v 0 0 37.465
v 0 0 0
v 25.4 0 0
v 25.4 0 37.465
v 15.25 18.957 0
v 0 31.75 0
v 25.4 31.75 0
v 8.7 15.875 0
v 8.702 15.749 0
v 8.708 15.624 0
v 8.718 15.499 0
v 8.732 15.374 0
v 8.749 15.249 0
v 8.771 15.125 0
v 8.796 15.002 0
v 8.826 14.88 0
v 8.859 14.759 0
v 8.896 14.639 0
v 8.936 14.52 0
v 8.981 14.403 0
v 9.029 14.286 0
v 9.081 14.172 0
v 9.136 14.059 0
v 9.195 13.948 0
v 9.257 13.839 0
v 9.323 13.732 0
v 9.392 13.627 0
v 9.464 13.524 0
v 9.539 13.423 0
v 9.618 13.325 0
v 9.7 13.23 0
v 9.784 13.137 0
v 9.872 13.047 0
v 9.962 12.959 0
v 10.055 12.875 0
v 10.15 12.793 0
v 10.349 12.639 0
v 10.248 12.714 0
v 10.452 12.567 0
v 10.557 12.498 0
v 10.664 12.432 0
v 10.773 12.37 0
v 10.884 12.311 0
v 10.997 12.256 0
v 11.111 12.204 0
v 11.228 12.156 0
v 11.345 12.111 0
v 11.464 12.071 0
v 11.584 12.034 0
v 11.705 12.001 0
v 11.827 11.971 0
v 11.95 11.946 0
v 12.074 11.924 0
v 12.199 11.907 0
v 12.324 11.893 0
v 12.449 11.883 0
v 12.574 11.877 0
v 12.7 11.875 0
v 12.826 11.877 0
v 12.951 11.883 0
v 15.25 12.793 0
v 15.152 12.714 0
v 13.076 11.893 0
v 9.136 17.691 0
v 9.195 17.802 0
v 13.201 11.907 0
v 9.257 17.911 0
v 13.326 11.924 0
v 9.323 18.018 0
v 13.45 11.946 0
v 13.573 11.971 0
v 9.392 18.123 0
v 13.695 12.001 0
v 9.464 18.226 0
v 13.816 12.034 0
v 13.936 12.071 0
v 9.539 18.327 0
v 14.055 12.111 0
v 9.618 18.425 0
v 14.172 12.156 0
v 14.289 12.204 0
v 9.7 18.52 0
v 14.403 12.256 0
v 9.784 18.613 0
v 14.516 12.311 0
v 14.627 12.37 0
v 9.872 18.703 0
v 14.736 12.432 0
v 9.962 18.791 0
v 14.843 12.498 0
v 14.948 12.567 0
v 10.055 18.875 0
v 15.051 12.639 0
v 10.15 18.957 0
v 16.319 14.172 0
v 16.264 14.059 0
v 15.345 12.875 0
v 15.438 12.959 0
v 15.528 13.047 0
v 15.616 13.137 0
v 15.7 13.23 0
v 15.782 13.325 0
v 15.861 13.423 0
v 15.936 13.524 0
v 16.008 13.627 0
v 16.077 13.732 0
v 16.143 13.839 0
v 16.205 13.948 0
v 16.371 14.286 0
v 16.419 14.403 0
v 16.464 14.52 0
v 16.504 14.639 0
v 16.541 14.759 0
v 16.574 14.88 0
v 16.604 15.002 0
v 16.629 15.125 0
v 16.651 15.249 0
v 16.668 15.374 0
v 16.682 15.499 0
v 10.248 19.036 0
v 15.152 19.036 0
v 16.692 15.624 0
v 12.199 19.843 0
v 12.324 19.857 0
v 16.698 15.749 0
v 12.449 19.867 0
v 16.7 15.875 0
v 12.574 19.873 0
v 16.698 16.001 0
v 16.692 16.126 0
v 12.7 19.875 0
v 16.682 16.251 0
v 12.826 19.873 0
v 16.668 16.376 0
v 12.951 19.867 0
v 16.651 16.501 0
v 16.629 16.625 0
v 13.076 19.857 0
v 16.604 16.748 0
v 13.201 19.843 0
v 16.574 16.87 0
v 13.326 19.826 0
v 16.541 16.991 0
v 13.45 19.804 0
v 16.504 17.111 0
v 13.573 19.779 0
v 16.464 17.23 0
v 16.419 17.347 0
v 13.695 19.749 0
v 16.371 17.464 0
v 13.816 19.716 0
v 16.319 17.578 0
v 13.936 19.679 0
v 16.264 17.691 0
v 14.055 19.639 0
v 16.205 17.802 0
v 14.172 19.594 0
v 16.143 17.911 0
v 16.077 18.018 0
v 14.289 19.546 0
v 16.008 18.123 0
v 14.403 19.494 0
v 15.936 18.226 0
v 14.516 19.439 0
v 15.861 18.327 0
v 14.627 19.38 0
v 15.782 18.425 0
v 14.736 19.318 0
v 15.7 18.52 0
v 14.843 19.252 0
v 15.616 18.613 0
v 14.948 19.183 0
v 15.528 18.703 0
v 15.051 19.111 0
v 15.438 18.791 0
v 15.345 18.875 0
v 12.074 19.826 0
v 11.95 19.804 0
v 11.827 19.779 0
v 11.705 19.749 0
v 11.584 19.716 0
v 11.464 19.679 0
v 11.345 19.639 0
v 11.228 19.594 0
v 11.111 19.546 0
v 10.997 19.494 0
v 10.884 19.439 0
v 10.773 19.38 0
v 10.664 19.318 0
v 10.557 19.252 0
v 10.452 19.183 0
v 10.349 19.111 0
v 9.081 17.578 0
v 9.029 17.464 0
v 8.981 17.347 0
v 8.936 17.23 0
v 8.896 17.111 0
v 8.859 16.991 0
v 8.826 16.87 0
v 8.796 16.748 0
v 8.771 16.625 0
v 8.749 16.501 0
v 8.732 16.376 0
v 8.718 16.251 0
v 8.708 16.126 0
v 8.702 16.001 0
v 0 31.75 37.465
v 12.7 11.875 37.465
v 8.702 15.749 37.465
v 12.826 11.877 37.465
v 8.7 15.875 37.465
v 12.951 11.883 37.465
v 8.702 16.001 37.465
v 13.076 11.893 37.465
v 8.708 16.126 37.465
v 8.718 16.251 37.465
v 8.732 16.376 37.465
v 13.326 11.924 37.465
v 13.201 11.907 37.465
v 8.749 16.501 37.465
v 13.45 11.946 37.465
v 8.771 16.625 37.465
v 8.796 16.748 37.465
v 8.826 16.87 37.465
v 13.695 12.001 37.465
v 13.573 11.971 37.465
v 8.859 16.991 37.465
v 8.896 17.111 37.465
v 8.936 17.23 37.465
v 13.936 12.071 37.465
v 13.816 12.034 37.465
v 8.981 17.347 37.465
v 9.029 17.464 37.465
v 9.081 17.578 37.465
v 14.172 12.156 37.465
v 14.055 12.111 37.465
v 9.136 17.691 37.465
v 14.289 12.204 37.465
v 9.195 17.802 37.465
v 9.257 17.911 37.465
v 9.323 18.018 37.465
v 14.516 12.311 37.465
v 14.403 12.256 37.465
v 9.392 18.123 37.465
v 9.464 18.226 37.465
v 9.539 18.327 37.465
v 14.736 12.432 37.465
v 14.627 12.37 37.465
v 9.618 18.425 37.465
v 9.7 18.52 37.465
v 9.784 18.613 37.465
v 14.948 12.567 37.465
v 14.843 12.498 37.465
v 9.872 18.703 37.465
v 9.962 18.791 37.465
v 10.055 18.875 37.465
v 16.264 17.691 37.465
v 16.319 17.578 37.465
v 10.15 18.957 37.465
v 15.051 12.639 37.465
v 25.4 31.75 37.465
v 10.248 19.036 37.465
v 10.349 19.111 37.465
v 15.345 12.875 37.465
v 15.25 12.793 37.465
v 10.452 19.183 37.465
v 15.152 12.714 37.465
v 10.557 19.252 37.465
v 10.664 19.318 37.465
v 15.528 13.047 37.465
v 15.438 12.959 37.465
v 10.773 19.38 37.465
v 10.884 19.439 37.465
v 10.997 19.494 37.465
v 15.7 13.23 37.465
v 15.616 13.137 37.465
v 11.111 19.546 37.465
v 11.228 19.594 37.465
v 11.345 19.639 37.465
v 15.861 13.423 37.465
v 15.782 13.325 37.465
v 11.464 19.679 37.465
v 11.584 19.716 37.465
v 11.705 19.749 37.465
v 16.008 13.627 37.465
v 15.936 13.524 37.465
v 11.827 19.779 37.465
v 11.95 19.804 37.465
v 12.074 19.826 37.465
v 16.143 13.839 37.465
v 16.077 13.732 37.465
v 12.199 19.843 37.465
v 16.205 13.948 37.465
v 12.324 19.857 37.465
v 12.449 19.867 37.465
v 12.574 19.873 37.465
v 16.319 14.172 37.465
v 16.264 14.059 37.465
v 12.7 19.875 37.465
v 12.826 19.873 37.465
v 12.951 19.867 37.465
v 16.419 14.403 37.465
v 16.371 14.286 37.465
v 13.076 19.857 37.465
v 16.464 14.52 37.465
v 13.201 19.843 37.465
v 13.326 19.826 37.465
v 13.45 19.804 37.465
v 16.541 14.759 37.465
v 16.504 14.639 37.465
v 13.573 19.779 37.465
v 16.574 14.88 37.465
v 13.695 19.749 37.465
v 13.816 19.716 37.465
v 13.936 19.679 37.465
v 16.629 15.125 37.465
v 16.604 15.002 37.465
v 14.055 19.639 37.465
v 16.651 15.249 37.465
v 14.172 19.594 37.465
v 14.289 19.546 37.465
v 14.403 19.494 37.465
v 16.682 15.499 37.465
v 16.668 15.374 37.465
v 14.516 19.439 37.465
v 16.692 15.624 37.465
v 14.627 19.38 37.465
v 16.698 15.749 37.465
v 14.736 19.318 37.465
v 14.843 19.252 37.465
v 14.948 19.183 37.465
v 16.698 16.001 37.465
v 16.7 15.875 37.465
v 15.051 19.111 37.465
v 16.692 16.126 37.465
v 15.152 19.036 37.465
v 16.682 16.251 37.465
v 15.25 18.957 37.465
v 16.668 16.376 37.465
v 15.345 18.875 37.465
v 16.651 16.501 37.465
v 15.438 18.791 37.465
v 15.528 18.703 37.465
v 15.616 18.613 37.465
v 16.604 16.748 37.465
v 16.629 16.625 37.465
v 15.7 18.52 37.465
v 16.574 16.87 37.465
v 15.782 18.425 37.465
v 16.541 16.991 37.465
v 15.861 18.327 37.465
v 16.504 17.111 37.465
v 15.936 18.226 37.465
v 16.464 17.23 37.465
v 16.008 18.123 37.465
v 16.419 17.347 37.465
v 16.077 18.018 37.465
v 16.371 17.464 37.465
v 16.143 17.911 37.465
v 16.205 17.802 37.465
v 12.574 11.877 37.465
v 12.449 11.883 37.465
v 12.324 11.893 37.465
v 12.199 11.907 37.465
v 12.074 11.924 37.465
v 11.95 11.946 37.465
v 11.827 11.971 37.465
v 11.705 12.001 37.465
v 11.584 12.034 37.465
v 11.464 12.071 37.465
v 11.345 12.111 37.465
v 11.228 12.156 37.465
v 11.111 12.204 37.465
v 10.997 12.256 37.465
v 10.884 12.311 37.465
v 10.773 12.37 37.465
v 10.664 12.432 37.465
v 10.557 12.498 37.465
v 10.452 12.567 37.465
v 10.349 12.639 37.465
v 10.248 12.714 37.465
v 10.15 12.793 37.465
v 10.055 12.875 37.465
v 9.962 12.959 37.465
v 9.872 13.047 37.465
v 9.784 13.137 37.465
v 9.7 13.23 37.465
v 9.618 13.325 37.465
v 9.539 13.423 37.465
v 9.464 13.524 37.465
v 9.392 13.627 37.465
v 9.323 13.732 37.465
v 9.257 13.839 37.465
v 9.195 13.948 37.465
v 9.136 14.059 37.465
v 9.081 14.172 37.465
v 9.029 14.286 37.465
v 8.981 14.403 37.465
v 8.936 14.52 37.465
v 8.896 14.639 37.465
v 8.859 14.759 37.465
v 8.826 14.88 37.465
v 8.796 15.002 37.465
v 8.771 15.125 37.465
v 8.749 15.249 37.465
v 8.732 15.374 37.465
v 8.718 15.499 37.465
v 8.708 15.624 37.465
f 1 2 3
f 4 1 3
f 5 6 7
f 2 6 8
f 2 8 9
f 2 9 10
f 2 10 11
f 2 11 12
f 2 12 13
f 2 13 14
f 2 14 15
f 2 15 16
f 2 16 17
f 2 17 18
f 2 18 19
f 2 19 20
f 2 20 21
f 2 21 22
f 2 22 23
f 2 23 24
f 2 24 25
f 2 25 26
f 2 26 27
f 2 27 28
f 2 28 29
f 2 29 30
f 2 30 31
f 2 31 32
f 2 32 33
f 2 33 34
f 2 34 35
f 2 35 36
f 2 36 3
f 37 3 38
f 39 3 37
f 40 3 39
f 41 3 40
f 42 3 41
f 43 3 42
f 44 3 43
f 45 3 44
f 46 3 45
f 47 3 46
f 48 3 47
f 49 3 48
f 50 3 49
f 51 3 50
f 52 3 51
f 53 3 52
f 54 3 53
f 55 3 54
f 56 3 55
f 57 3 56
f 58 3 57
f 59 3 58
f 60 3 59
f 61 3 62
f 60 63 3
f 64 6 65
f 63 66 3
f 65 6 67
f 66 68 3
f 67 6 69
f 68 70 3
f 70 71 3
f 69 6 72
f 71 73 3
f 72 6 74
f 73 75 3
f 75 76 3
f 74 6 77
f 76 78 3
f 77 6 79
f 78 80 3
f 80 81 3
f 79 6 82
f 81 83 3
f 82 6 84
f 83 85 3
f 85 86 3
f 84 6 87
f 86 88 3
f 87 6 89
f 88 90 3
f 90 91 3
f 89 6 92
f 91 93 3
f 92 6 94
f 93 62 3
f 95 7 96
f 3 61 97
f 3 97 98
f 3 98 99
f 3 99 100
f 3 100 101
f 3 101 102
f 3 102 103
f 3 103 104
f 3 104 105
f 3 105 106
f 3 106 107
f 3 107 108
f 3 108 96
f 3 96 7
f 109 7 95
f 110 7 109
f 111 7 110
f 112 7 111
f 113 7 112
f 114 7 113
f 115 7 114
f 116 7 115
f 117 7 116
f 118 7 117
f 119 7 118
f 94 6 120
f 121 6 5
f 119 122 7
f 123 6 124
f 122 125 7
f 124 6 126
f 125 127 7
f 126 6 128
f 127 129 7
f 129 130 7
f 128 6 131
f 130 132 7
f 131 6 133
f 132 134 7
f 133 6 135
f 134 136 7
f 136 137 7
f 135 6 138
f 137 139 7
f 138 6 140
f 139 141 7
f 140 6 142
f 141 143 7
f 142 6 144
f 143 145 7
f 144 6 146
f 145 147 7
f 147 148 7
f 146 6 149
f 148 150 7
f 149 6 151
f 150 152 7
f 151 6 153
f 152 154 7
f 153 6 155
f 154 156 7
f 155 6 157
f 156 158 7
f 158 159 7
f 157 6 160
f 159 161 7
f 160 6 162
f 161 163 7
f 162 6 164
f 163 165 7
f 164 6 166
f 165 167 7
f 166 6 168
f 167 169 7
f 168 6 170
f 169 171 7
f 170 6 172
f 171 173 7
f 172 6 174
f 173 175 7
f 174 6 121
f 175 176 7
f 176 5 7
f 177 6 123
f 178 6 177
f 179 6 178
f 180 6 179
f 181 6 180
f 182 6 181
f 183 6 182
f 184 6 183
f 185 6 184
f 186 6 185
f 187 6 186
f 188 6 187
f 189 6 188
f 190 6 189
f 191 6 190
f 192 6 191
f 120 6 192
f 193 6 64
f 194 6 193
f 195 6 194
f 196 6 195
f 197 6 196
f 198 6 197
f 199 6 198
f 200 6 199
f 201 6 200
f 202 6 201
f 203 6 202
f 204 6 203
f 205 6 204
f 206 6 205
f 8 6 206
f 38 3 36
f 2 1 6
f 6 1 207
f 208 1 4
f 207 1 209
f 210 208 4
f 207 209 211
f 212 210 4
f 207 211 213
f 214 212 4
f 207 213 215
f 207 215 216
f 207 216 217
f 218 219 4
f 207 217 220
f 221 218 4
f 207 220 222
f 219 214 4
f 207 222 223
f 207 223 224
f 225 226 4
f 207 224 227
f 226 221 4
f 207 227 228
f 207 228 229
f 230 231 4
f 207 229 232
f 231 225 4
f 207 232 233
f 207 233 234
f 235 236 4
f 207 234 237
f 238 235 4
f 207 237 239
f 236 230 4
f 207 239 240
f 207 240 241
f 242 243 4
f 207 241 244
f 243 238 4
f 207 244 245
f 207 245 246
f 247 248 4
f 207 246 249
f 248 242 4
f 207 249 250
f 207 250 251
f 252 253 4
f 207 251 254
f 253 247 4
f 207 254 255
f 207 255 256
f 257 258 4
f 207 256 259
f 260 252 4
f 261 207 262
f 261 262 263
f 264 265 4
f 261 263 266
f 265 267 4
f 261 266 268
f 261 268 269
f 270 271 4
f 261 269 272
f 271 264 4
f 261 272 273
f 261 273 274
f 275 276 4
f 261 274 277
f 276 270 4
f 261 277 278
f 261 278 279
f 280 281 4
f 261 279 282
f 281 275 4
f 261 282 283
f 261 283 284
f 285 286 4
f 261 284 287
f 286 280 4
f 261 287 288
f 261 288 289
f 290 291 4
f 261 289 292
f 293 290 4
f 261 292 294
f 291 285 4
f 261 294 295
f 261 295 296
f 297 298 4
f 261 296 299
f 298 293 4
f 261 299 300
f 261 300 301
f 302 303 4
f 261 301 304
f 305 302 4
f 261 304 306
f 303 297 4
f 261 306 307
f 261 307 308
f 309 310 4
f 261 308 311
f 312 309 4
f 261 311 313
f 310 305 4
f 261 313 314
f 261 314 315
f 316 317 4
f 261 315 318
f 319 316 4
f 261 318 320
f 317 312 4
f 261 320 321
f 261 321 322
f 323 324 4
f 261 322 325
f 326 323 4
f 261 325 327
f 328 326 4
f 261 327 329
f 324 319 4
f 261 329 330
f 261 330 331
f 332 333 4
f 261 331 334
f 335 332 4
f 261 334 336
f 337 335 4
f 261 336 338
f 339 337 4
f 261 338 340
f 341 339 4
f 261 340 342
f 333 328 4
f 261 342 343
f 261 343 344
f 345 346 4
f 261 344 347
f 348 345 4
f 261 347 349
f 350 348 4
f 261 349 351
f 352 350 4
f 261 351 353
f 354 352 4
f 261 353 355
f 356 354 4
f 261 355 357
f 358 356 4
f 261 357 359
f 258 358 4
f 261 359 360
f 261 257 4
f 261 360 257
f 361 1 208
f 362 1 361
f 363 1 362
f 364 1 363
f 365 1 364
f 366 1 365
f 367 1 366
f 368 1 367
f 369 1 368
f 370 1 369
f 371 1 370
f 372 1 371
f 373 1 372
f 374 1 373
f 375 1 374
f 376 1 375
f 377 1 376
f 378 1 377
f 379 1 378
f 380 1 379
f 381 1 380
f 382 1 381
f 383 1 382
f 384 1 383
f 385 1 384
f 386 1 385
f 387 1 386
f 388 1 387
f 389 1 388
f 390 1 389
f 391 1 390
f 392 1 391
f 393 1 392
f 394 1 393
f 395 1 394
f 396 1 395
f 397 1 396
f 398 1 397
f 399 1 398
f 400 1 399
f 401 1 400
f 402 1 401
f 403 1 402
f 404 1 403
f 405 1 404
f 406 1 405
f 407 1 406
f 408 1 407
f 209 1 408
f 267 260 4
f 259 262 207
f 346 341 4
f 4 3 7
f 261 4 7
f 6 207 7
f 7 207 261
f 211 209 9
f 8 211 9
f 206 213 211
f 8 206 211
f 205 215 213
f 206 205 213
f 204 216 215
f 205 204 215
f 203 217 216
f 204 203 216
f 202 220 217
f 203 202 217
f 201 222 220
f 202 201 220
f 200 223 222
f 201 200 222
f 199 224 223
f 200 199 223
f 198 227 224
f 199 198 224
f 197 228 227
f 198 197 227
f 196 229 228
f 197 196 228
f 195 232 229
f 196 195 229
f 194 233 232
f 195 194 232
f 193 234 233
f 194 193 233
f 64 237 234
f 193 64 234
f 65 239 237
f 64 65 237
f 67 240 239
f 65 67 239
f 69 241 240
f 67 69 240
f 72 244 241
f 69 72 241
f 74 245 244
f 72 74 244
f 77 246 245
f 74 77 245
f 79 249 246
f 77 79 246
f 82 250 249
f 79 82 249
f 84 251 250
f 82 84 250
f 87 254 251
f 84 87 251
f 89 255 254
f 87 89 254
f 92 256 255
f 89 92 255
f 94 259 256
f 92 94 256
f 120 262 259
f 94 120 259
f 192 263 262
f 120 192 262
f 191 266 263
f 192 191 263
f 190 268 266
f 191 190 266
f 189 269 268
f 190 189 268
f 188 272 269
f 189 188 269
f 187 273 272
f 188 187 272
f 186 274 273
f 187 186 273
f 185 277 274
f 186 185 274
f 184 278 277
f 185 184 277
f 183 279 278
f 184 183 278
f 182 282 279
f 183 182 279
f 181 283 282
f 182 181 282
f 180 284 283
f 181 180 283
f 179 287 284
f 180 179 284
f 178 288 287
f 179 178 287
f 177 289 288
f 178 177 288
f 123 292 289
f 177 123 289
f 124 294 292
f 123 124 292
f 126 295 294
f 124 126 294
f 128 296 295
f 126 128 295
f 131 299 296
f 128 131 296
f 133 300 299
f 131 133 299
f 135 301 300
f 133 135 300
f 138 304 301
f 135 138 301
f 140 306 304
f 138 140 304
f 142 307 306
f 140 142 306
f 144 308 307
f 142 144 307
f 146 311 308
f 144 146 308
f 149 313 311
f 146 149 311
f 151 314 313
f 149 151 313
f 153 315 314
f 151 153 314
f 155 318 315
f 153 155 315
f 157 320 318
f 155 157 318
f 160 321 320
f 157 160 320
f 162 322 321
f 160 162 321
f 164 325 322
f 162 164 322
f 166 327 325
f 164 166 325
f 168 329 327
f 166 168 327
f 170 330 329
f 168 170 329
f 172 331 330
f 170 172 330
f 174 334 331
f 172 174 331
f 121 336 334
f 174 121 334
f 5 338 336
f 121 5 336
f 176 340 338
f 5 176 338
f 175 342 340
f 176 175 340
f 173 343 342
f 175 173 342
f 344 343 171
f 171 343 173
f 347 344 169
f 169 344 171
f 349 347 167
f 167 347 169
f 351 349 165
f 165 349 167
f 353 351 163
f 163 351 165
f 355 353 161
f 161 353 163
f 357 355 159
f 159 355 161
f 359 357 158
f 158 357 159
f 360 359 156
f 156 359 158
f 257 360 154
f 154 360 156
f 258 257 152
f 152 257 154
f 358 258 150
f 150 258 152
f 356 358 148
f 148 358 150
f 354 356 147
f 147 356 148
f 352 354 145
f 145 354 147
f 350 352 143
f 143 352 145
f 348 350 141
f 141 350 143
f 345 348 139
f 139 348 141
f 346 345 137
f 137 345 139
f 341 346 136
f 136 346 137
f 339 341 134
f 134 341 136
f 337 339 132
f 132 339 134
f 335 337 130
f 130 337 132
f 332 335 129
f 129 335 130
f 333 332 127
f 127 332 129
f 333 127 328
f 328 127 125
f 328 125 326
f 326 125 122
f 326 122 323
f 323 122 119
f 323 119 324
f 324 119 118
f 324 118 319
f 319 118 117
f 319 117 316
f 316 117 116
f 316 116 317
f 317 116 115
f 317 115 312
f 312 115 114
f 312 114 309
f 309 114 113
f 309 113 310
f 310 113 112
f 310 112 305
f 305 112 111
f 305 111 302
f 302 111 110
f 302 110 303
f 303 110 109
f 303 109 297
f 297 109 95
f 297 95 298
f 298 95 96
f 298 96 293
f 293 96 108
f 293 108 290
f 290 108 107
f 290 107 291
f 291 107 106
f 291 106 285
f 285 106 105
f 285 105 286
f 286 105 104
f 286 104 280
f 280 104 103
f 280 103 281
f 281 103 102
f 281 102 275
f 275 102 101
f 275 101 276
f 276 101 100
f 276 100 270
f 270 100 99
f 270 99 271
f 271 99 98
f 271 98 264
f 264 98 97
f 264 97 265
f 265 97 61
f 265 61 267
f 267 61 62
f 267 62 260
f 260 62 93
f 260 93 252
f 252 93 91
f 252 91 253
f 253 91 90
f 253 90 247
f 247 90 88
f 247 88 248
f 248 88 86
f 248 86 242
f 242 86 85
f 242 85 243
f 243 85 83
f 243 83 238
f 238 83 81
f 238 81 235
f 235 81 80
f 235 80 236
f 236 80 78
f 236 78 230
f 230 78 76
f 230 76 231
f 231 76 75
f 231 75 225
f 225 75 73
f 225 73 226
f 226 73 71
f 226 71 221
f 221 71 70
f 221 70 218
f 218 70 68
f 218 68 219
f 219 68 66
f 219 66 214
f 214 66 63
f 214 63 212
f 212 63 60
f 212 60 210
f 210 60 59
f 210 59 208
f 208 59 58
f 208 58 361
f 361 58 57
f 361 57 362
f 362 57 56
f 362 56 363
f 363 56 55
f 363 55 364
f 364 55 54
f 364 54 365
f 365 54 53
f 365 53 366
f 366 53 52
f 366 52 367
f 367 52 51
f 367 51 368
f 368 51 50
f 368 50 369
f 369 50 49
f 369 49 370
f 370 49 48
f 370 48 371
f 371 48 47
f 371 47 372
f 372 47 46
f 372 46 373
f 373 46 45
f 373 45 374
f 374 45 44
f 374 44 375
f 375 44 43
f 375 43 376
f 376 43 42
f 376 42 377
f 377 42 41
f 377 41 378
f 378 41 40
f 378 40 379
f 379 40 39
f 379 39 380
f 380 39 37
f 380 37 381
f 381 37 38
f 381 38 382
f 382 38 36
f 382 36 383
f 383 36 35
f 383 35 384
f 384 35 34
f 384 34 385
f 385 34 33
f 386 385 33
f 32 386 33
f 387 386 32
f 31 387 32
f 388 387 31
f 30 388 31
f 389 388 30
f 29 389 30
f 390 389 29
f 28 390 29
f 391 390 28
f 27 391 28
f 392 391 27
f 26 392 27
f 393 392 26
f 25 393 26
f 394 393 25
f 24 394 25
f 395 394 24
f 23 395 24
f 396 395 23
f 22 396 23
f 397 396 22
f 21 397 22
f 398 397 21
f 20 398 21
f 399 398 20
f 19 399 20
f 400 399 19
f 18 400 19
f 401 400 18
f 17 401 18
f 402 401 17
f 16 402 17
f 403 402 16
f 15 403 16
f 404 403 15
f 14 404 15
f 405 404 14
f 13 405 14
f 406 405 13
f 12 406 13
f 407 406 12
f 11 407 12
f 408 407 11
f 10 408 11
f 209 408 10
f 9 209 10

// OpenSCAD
width = 25.4;
depth = 25.4 * 1.25;
height = 1.475 * 25.4;
bolt = 8;

#difference()
{
linear_extrude(height = height )
{
	polygon(points=[[0, 0],[width, 0],[width, depth], [0, depth]]);

}

linear_extrude(height = height)
{
	translate([width/2, depth/2,0])
	{
		circle($fn = 200, r = bolt/2);
	}
}
}
